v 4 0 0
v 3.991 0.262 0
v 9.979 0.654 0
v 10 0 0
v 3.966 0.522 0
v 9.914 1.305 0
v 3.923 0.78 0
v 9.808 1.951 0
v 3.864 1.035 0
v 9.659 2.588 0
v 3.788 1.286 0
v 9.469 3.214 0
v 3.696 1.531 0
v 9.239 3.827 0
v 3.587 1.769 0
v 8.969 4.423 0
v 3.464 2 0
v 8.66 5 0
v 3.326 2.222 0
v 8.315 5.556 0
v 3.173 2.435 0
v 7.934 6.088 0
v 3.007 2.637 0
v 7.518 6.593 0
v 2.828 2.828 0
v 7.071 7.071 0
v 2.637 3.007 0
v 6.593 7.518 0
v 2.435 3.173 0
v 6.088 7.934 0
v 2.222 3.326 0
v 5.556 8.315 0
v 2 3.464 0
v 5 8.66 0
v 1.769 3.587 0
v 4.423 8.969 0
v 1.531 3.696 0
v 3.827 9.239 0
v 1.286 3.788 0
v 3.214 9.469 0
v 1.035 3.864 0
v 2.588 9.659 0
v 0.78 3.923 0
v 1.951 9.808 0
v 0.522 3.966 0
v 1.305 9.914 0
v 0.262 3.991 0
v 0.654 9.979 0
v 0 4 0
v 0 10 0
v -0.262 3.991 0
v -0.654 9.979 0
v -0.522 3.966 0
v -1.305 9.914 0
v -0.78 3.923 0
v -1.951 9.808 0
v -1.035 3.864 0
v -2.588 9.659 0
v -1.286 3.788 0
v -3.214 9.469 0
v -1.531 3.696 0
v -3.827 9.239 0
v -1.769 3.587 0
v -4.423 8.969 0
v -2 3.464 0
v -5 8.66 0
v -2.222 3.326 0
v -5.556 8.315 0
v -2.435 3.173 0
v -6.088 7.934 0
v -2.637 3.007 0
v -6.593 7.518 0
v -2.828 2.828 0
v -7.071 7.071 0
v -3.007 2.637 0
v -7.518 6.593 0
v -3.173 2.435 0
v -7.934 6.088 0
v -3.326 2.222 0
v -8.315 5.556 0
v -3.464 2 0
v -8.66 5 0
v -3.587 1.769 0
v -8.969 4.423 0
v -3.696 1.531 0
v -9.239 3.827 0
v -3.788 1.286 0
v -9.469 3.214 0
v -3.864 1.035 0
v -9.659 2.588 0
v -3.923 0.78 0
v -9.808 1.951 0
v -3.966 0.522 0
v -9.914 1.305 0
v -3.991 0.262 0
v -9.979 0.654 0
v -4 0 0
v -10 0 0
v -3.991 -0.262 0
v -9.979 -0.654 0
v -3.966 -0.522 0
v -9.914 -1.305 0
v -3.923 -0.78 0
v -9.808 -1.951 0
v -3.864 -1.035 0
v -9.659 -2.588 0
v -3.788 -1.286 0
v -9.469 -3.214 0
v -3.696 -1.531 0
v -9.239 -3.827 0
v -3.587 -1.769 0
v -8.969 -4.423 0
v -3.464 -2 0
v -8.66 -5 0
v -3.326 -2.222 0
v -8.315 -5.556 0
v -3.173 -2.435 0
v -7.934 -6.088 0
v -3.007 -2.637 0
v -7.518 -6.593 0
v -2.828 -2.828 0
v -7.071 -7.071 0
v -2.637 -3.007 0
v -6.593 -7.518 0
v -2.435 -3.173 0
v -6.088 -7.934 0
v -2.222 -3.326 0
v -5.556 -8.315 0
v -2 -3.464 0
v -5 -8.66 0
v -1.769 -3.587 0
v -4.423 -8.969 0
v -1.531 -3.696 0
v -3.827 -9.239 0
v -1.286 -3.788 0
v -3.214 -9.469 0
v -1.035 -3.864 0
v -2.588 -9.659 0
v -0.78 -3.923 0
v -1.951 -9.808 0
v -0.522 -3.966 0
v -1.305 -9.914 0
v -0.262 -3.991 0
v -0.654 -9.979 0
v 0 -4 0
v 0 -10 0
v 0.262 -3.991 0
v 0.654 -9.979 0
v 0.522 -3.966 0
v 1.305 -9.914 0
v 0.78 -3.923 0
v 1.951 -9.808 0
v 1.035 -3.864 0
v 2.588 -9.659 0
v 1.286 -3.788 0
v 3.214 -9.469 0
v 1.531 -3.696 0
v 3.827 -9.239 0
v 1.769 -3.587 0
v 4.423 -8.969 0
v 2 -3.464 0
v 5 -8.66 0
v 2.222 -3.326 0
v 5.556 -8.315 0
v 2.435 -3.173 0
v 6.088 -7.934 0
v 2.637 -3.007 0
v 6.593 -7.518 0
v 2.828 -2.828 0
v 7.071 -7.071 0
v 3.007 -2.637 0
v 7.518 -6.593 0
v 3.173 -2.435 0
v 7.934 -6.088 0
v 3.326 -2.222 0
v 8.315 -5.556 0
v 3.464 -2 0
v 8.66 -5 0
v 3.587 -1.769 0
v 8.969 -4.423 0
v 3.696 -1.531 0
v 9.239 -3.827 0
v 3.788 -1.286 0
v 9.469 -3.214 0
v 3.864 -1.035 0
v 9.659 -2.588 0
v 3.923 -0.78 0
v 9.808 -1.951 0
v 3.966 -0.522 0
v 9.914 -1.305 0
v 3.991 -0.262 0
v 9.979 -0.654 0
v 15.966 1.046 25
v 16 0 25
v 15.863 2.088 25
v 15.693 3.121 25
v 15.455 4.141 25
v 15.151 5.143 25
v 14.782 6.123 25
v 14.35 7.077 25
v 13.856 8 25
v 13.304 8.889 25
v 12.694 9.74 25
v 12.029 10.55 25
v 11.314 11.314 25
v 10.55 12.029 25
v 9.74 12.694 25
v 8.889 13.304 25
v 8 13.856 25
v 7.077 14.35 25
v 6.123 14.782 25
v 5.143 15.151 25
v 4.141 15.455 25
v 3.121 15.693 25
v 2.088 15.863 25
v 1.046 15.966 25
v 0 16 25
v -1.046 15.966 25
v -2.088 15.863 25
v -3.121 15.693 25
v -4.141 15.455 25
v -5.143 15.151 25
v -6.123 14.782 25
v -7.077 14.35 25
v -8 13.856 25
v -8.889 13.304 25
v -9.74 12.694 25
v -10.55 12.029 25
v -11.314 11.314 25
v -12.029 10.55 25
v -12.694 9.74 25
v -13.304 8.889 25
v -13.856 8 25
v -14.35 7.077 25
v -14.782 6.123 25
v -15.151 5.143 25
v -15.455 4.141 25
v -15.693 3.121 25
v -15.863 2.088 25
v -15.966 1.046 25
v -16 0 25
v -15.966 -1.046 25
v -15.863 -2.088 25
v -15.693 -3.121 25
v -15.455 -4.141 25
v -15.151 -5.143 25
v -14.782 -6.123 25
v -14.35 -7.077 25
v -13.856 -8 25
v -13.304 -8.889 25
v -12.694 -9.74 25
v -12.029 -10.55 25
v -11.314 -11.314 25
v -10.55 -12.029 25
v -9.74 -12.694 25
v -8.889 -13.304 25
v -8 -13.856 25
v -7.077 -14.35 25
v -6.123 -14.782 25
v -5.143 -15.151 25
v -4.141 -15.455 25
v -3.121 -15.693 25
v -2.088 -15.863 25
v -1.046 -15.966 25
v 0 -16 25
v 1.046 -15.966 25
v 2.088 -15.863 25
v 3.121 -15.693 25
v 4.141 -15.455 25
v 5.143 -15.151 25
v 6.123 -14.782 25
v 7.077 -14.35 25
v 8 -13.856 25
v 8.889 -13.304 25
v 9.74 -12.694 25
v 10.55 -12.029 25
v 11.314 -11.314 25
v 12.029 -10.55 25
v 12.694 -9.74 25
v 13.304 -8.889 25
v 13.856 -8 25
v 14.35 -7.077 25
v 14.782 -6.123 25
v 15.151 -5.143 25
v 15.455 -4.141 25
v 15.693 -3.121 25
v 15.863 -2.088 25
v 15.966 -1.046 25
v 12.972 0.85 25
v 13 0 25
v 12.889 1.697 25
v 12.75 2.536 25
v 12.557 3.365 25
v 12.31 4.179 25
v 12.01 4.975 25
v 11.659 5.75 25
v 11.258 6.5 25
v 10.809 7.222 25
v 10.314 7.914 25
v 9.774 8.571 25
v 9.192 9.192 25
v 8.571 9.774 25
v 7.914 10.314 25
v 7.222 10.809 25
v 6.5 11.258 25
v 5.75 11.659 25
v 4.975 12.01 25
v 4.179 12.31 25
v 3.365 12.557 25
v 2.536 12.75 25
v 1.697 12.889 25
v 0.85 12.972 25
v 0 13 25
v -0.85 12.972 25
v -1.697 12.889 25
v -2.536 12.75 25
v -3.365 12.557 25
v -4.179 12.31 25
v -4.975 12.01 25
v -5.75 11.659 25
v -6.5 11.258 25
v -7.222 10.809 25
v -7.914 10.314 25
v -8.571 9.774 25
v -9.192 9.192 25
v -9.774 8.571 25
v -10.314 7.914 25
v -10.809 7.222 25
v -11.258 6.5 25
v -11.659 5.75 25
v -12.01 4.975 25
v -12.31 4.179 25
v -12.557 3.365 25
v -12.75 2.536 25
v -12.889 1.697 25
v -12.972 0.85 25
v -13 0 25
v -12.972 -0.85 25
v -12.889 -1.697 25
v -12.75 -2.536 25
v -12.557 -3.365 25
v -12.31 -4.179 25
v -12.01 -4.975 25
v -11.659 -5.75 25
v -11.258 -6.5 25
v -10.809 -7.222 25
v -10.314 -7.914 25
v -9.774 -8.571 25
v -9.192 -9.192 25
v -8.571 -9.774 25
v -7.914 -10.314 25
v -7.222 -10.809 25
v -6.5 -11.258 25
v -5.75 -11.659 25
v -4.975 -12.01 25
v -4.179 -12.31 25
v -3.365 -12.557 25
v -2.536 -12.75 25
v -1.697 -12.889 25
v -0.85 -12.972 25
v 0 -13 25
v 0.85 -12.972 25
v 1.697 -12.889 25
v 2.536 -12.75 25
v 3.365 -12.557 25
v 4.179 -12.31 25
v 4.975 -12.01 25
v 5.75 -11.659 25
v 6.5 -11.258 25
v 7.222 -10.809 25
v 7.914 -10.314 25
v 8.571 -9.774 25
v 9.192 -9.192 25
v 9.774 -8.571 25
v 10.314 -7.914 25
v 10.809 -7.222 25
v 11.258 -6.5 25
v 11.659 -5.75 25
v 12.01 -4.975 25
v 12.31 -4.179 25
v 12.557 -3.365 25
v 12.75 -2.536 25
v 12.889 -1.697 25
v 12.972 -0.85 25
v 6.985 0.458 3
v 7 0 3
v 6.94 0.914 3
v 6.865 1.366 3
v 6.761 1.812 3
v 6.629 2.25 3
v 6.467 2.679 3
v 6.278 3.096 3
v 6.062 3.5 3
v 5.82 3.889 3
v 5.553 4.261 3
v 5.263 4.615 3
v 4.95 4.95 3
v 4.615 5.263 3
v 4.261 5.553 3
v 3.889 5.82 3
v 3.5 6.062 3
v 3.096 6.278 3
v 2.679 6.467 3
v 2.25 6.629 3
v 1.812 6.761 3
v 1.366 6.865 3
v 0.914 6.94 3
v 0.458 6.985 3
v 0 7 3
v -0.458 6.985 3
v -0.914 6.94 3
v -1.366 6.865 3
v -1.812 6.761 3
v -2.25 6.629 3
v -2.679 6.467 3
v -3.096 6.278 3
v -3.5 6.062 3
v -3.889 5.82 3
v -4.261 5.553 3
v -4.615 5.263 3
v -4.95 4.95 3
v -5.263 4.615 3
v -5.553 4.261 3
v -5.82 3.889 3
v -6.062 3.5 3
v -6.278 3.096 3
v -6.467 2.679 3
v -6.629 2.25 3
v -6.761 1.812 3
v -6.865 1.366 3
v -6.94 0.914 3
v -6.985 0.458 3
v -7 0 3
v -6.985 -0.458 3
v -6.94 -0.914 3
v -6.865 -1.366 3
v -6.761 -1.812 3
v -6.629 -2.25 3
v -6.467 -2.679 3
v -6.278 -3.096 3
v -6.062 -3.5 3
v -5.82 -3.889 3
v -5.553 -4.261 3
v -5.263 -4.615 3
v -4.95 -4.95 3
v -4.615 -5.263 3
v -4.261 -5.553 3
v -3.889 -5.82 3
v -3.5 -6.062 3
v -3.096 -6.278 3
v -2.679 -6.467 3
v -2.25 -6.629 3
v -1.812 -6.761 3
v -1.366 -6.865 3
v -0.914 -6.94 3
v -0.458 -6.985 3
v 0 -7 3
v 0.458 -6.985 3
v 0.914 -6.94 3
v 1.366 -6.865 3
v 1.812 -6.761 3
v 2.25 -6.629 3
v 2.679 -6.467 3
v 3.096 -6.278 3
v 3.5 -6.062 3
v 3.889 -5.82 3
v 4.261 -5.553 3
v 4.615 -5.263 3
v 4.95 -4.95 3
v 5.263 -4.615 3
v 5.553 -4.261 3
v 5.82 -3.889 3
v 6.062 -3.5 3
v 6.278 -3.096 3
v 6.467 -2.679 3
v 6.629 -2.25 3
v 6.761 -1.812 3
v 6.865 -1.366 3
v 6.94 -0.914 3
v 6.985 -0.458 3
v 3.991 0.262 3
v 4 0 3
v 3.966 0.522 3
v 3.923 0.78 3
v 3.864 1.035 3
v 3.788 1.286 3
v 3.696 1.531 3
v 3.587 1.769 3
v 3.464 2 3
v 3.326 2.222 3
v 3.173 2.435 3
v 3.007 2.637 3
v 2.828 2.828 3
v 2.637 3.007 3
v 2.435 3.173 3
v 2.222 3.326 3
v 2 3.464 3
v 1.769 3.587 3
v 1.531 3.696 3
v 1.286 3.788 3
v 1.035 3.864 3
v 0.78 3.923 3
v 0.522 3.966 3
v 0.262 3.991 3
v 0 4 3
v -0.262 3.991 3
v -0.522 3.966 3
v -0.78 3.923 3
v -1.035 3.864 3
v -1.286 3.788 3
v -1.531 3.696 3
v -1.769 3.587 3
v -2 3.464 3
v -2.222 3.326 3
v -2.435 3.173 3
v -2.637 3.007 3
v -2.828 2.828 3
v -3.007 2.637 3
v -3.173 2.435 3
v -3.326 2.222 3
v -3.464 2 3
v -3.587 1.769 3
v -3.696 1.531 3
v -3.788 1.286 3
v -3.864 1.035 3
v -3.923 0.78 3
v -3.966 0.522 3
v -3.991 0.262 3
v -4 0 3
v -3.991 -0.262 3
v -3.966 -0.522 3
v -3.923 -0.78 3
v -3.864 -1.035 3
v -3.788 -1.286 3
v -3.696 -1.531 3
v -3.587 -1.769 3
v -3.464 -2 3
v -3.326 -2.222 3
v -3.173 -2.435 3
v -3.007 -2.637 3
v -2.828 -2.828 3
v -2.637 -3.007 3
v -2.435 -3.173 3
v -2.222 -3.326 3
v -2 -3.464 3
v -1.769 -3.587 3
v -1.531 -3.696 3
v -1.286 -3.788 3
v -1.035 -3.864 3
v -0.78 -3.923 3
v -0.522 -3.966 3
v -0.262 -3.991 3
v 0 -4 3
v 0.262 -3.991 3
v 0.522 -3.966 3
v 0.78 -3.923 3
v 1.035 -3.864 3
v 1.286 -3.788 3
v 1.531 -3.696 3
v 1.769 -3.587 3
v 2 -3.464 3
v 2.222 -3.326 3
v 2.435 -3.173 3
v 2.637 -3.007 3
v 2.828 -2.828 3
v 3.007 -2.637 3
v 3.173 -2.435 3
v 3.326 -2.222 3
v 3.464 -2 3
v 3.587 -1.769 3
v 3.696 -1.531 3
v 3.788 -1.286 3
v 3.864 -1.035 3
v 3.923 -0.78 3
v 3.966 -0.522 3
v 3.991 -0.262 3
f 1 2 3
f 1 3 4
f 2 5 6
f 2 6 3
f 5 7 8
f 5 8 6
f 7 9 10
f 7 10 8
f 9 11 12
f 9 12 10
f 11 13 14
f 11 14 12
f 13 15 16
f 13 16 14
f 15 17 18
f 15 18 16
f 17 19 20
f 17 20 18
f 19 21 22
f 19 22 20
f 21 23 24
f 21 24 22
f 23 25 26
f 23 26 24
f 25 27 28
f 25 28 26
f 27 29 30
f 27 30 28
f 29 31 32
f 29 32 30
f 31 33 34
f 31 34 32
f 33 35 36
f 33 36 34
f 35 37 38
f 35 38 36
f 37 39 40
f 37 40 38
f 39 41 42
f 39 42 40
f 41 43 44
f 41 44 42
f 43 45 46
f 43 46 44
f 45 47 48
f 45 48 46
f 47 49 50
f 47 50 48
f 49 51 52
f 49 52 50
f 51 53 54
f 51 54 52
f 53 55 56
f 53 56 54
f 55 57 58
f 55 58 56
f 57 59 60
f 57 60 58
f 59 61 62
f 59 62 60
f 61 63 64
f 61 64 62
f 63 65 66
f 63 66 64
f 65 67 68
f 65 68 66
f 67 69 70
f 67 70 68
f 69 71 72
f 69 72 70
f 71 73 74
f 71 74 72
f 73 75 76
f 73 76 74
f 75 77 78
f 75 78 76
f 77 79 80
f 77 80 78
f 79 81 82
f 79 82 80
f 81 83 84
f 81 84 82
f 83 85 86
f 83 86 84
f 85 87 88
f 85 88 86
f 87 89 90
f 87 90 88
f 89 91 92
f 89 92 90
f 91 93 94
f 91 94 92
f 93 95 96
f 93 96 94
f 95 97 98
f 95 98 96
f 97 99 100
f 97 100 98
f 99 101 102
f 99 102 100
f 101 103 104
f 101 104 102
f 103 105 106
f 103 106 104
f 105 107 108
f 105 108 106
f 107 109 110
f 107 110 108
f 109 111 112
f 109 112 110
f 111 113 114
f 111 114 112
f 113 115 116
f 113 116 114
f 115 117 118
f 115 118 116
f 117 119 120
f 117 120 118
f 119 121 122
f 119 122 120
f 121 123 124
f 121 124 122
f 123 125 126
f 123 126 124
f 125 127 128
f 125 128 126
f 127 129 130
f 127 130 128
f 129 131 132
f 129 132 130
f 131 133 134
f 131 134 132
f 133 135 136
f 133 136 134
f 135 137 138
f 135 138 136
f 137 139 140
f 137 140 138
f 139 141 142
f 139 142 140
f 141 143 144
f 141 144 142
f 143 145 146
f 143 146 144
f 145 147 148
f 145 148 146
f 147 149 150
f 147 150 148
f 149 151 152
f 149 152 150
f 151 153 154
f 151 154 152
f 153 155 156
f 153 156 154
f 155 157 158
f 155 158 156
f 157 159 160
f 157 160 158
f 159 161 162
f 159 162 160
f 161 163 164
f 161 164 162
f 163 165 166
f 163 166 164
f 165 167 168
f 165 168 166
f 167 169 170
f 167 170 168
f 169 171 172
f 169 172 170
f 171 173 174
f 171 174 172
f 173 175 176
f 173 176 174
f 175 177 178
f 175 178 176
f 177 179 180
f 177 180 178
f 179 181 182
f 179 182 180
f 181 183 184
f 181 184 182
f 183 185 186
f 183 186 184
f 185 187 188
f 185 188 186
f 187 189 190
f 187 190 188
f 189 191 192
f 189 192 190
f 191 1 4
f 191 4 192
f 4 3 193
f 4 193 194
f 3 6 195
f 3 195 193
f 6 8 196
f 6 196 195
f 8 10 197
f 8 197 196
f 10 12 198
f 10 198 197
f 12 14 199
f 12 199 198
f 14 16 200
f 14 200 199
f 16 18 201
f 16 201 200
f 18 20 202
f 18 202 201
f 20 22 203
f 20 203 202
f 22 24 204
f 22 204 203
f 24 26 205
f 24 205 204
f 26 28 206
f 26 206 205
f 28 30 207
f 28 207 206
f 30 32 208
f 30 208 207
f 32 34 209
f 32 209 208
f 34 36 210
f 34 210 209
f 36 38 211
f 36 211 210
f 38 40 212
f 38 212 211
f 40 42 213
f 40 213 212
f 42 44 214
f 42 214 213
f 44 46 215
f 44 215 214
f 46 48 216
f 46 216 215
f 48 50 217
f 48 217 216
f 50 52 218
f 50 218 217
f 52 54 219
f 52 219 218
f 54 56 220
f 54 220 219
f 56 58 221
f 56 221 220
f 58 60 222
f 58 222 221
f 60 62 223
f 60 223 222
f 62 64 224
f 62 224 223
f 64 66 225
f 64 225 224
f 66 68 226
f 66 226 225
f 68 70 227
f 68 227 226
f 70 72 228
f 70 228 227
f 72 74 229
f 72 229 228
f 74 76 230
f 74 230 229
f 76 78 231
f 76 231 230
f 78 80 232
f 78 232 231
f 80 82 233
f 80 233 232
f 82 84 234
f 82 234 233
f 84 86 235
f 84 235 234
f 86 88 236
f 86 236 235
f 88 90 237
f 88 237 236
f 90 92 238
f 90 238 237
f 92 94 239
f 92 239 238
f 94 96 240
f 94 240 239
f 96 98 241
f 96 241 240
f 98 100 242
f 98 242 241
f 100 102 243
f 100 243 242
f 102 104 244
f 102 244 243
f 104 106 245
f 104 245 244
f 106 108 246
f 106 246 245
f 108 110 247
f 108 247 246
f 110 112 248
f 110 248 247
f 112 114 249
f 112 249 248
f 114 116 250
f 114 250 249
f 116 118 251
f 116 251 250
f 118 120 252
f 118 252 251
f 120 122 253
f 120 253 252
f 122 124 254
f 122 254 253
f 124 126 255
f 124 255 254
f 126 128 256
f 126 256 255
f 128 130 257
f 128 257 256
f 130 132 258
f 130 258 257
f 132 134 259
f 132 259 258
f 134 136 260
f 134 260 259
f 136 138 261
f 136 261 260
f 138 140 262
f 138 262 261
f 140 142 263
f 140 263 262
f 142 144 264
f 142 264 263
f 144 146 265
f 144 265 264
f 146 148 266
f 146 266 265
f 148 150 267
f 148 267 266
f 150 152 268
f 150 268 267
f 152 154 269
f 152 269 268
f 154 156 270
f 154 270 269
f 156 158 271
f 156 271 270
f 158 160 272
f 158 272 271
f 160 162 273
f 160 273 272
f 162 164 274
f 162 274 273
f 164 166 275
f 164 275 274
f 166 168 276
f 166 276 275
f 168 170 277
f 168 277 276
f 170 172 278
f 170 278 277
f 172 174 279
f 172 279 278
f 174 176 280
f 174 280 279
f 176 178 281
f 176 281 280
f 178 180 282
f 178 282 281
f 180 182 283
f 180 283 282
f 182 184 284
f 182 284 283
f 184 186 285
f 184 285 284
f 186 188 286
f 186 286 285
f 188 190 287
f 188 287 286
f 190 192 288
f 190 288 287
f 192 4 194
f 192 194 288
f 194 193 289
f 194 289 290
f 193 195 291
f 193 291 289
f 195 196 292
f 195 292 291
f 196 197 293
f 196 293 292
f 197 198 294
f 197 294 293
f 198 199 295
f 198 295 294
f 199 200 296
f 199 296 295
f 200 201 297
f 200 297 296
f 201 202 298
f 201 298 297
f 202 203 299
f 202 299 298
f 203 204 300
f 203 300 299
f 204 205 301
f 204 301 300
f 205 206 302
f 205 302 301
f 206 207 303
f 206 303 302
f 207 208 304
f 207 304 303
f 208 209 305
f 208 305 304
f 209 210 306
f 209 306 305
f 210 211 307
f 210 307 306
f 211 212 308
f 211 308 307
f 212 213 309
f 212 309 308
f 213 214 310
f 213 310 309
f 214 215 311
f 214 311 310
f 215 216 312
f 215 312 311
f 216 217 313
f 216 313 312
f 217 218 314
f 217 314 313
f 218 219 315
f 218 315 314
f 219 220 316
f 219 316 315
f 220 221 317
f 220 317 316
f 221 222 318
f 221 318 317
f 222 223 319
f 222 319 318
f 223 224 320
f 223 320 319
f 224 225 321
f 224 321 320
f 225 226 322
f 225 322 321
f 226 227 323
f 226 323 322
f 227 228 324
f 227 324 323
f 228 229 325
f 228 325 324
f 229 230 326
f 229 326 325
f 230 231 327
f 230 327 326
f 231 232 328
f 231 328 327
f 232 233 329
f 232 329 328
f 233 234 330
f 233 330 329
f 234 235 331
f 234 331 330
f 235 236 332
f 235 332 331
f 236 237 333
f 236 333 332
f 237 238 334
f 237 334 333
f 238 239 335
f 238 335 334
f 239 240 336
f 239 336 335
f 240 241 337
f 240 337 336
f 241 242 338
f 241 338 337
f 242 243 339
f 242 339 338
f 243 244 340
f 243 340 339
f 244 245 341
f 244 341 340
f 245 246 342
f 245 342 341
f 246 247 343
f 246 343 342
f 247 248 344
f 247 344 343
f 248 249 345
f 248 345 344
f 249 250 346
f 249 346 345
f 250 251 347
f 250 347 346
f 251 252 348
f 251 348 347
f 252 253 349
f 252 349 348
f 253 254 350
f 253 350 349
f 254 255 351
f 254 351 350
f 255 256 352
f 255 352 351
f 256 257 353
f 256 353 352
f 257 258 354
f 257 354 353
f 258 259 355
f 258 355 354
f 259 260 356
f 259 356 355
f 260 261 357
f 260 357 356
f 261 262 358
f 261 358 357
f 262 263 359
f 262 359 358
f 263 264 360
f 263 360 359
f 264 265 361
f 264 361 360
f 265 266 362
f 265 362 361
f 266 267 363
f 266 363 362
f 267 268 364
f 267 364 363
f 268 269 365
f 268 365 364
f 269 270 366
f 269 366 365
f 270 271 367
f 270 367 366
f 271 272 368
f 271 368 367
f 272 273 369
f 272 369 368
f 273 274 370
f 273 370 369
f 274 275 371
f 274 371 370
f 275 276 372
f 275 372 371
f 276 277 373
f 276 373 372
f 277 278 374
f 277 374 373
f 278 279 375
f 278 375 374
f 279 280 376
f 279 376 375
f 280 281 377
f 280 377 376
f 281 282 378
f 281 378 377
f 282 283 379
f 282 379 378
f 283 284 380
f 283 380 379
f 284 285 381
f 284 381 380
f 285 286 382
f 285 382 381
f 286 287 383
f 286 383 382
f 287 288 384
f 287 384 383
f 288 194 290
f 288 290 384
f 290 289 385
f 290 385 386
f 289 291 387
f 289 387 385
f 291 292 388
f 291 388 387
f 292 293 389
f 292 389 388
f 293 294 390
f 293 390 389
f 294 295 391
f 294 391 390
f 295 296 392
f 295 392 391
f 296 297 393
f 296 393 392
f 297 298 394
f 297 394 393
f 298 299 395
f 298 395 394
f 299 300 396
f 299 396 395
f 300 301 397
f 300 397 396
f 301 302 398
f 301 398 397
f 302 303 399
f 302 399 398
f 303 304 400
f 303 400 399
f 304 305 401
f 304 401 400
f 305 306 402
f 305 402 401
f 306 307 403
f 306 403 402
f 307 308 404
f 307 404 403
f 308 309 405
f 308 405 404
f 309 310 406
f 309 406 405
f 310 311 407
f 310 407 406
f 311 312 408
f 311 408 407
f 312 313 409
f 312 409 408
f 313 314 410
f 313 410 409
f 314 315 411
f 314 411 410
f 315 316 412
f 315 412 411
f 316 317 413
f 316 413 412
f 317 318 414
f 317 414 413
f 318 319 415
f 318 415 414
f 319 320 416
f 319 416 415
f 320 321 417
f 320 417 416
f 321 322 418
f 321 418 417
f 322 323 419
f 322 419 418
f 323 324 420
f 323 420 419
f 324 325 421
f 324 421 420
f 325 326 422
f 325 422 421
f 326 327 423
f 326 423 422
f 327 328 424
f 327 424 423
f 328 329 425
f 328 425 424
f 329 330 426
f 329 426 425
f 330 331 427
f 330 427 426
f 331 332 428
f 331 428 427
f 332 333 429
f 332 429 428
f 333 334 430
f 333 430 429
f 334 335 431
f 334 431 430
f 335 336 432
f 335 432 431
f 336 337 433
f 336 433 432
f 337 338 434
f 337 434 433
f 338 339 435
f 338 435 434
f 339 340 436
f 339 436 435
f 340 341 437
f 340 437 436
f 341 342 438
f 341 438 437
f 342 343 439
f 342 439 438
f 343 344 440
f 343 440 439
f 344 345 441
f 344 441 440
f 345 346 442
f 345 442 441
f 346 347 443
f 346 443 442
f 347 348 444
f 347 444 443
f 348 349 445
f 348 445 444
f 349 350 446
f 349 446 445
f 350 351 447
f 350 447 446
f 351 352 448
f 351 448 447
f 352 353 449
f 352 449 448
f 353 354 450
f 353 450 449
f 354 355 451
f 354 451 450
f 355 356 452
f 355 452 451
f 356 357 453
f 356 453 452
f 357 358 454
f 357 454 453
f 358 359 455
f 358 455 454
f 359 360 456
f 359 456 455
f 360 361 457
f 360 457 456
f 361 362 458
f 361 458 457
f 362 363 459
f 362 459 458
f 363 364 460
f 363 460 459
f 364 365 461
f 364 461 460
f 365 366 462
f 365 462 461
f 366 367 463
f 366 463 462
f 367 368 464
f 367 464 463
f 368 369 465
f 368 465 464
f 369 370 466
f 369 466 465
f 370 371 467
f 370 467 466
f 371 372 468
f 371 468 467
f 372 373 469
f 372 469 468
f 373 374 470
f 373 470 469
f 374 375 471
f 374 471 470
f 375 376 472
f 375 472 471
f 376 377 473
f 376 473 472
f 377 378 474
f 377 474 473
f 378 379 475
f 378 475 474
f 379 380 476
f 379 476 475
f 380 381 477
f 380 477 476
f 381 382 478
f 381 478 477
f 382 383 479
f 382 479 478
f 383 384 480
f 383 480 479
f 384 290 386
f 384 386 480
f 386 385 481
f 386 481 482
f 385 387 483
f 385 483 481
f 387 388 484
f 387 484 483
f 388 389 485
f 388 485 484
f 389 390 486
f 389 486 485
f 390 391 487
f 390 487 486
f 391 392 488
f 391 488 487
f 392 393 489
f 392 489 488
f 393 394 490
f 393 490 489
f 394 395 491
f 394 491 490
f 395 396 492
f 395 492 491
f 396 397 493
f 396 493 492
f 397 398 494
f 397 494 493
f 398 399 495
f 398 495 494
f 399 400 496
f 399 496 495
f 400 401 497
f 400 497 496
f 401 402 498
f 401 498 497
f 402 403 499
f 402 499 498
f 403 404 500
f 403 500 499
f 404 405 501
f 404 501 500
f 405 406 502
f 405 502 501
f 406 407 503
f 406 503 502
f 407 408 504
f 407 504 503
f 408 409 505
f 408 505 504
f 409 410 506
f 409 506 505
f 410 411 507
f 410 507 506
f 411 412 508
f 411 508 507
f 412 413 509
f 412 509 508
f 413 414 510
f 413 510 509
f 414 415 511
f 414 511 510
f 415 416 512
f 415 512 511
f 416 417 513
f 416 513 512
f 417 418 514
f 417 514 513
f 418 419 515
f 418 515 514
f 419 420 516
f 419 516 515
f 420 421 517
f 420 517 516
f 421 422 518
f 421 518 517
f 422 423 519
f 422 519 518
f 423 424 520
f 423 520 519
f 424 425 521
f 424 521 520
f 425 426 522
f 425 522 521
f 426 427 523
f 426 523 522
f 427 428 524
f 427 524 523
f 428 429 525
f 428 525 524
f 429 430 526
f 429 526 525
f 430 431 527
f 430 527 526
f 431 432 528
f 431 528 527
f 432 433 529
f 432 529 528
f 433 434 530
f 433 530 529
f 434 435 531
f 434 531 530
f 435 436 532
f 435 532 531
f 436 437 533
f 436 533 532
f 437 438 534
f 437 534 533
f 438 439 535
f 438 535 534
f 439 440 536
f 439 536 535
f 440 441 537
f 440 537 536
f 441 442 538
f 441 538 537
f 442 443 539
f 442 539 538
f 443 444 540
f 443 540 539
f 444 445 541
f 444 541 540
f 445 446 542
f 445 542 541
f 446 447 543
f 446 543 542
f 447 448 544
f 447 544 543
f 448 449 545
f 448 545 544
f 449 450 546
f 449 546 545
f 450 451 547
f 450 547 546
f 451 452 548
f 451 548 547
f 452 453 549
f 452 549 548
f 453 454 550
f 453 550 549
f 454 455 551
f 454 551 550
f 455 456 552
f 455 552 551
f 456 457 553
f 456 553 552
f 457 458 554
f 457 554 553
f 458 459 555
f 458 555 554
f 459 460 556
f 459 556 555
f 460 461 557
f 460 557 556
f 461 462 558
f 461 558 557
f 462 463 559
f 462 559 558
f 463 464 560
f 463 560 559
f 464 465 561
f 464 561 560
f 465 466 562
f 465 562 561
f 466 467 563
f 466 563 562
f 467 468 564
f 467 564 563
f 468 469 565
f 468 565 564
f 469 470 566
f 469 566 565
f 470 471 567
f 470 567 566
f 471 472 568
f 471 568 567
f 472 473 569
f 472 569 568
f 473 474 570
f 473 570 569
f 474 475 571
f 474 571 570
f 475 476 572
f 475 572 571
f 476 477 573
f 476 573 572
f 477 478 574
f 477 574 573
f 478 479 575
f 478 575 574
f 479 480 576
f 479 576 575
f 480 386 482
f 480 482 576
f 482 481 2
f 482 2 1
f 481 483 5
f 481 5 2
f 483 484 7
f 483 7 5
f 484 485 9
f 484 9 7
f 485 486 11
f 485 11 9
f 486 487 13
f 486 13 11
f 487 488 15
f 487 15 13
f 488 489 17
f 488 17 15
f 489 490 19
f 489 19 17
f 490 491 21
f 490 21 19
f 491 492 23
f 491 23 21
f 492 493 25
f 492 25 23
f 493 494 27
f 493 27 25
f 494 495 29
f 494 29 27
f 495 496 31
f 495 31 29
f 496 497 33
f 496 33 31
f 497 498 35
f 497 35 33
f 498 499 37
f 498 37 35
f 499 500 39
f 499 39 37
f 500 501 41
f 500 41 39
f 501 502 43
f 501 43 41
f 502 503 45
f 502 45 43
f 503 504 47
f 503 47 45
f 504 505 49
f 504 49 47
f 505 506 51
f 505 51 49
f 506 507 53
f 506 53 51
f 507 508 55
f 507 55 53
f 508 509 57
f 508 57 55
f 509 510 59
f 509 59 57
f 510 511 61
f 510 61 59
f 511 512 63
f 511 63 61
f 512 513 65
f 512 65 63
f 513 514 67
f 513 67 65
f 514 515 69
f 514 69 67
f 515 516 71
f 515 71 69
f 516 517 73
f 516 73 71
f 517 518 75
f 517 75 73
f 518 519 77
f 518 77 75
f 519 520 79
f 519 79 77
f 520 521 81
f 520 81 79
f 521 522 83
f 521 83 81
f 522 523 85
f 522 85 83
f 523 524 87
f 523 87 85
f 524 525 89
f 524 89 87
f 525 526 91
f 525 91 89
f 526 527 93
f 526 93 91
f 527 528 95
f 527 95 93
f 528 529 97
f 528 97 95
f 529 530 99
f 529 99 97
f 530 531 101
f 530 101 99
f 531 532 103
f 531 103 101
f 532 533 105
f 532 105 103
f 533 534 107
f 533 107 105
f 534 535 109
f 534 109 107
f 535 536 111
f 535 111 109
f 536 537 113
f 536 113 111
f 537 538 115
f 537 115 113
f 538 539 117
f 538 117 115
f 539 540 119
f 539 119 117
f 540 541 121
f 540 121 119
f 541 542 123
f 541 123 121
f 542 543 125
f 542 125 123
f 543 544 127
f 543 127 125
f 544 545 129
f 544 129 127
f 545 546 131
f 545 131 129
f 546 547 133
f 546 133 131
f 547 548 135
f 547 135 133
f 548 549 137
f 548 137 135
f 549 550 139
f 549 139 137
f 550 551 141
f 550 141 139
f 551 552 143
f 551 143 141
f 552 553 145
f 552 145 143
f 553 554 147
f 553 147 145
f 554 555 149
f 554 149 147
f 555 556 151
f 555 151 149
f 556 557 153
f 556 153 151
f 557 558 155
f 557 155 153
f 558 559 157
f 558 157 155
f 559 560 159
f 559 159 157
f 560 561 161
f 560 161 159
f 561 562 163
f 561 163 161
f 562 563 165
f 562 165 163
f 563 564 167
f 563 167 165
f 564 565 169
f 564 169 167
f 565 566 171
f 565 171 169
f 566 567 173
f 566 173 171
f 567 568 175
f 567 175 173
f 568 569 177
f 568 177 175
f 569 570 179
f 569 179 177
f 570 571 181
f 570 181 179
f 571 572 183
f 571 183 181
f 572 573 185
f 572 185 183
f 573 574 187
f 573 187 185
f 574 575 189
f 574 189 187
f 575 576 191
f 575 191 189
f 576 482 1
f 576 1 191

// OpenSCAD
// Original MechIntel educational model. CC0-1.0. Units: mm.
// Not a standardized or load-rated component.
$fn=96;
// Section points: [radius, height], mm. Edit to change the profile.
section=[[4, 0], [10, 0], [16, 25], [13, 25], [7, 3], [4, 3]];
rotate_extrude($fn=96) polygon(points=section);
